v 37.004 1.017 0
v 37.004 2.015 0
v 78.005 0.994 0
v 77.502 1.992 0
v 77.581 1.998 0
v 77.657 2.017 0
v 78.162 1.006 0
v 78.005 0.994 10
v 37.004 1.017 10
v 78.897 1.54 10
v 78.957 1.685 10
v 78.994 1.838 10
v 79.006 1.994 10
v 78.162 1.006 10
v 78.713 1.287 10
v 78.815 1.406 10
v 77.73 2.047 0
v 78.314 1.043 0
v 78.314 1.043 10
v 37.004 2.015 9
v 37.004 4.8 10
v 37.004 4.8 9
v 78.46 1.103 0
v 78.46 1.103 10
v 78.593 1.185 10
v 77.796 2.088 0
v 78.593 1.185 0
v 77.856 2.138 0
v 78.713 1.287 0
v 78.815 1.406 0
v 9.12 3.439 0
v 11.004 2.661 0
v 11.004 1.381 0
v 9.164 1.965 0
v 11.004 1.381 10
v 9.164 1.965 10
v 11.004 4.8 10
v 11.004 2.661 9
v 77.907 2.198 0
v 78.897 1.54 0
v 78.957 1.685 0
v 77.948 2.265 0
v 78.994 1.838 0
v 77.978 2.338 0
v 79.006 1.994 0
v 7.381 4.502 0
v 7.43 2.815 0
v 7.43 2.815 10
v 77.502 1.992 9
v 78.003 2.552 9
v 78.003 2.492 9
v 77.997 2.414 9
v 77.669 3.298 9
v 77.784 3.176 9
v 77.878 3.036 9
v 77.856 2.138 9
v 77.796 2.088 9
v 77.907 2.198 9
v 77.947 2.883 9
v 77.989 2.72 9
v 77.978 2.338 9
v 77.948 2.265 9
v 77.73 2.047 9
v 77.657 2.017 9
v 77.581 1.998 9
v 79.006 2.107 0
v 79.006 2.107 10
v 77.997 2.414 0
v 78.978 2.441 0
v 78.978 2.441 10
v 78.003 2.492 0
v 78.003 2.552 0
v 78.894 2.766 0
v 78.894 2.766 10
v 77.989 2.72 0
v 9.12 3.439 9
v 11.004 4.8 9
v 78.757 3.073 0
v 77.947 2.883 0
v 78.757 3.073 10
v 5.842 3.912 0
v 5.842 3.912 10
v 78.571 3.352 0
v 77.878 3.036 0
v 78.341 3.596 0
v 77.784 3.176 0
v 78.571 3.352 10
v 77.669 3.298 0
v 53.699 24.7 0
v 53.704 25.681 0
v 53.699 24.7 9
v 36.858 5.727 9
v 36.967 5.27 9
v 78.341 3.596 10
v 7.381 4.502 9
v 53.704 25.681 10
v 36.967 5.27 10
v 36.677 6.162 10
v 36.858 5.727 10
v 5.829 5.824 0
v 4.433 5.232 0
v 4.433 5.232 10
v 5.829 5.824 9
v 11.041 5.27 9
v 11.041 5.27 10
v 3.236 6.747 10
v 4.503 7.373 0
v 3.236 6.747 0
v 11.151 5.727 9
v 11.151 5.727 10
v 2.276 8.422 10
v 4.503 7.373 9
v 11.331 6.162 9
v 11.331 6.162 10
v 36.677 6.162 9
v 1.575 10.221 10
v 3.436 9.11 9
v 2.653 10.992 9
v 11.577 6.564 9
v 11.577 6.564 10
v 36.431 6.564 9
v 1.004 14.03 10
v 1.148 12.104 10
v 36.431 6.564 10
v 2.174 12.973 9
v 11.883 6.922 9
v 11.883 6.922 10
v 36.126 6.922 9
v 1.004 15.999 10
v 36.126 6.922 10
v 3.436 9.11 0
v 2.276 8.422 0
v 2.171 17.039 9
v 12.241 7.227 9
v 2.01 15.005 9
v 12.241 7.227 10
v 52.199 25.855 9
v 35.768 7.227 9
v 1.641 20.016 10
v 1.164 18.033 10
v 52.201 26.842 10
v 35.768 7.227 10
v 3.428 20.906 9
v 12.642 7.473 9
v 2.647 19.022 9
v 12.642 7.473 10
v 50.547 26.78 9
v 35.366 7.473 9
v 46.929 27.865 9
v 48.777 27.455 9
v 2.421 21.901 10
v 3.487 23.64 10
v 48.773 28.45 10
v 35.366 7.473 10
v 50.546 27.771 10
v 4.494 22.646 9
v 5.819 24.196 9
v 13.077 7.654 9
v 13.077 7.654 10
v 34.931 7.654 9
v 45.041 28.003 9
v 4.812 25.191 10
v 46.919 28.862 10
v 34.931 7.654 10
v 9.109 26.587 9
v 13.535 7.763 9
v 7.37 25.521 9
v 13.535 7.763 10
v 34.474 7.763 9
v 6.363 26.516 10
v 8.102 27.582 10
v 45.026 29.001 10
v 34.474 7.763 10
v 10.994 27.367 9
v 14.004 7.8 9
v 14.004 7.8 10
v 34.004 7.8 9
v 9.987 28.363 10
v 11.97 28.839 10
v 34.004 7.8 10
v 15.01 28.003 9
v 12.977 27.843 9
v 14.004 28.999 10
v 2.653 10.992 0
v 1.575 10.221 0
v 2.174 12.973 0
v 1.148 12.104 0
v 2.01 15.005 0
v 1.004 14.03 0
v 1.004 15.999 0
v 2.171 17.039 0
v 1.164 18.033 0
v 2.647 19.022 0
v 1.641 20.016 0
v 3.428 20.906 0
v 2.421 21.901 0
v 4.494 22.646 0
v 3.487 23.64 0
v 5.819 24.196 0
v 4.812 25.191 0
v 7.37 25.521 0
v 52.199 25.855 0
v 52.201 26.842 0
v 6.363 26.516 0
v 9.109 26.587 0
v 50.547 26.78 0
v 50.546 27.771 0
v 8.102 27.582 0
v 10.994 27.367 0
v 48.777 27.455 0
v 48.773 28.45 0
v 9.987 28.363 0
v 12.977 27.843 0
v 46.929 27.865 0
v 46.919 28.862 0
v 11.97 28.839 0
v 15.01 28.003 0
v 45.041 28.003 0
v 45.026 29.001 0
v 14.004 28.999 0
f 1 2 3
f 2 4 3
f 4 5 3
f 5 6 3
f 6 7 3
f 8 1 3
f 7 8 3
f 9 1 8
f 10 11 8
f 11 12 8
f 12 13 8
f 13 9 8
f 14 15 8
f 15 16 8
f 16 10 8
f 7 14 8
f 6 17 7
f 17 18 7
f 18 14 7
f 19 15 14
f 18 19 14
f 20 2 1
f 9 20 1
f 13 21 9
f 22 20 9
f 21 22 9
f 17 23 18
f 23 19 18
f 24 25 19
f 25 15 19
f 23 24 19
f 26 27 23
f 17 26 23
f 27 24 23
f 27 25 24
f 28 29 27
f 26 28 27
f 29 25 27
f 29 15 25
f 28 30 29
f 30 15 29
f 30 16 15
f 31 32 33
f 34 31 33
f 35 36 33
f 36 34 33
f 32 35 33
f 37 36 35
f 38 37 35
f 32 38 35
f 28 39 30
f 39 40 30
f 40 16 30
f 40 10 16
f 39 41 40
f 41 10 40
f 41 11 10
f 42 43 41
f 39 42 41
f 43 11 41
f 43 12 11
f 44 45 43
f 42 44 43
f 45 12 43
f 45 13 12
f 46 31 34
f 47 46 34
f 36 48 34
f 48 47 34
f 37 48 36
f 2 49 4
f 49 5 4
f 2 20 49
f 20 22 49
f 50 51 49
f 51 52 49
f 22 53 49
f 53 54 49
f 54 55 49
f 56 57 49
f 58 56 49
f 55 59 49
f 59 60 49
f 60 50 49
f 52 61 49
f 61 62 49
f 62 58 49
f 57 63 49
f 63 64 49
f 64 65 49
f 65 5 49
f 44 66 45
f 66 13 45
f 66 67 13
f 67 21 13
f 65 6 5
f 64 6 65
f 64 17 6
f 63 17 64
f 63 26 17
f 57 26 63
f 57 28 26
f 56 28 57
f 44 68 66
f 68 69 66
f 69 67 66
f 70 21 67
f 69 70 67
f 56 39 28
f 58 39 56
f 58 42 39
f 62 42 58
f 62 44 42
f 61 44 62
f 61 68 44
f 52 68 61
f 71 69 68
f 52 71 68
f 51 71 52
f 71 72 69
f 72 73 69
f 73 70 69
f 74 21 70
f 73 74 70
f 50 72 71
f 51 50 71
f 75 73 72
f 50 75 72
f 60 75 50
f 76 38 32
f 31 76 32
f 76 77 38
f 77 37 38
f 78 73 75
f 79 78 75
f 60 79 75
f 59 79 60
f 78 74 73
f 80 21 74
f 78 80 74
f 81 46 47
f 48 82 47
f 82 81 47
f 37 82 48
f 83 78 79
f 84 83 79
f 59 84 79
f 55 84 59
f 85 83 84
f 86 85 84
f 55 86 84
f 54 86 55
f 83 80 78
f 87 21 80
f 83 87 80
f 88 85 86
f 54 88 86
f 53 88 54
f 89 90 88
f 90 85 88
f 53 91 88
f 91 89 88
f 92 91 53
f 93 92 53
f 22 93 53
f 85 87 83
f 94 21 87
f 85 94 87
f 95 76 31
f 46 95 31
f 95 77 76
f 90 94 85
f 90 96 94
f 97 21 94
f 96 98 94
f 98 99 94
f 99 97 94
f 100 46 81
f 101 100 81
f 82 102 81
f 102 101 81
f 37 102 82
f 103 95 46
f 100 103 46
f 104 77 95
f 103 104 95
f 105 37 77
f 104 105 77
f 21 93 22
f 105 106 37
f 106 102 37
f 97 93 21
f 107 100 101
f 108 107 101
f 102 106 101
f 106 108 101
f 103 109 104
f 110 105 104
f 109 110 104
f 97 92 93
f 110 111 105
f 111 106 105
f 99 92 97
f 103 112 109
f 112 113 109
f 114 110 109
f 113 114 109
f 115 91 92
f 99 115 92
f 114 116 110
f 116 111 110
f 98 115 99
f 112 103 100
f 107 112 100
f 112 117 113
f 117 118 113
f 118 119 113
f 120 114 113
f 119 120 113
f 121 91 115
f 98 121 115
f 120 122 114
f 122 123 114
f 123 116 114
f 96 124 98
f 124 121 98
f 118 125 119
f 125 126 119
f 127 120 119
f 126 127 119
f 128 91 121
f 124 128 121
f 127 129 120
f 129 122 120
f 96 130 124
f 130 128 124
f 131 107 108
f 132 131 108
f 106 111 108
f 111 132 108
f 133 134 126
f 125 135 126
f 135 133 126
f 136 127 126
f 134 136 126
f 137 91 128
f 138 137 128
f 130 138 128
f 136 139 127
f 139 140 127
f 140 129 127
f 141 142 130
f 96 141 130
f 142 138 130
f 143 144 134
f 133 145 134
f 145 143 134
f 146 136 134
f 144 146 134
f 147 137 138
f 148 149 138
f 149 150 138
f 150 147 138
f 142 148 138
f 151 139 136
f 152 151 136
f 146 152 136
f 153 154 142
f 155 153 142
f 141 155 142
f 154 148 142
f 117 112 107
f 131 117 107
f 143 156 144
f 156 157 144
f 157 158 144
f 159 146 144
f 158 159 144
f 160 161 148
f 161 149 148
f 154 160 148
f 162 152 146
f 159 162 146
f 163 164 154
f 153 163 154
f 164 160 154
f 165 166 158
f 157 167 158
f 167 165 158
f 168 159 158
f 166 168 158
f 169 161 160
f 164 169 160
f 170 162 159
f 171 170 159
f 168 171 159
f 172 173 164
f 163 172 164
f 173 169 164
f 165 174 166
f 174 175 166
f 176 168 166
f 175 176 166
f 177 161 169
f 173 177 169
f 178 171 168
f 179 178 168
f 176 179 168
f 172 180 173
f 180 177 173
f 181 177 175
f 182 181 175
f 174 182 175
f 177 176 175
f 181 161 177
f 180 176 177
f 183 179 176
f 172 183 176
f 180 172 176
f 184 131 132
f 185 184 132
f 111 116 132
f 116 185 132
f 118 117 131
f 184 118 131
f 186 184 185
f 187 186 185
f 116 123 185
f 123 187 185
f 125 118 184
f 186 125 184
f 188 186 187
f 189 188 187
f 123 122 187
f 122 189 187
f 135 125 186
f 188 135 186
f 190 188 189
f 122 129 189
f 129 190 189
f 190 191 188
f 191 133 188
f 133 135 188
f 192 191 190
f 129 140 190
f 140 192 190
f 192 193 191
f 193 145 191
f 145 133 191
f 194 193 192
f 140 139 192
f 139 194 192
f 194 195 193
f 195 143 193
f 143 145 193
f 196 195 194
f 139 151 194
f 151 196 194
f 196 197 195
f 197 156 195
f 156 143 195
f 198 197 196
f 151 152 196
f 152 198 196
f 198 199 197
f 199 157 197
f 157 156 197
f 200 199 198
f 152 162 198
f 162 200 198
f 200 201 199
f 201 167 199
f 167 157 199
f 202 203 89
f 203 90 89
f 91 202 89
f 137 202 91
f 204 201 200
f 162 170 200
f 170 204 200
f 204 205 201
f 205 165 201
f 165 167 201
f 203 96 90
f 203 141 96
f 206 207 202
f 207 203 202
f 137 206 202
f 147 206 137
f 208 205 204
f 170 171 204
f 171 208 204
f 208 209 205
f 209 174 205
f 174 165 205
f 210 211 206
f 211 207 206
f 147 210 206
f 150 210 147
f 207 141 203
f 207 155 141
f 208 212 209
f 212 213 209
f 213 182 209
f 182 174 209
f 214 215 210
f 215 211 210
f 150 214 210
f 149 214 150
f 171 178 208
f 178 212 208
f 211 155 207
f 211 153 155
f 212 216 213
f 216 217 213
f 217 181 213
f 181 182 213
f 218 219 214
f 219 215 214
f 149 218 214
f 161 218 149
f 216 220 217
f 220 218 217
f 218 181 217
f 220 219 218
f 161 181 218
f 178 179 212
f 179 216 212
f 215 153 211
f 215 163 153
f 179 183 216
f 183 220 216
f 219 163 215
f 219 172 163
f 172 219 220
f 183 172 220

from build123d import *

# Parameters (mm, degrees)
SKETCH1_W               = 80
SKETCH1_H               = 30
BOSS_EXTRUDE1_DEPTH     = 10
CUT_EXTRUDE2_DEPTH      = 87.02325267
CUT_EXTRUDE2_DEPTH_BACK = 10
SKETCH9_OUTSIDE_W       = 99.204
SKETCH9_OUTSIDE_H       = 49.204
CUT_EXTRUDE3_DEPTH      = 10
CUT_EXTRUDE5_DEPTH      = 9
FILLET13_R              = 13
FILLET14_R              = 13
FILLET15_R              = 13
FILLET17_R              = 13
FILLET18_R              = 13
FILLET19_R              = 13
FILLET20_R              = 2
FILLET21_R              = 1
FILLET22_R              = 0.5
FILLET23_R              = 1
SKETCH15_W              = 26
SKETCH15_H              = 7
CUT_EXTRUDE6_DEPTH      = 15
FILLET24_R              = 3
FILLET25_R              = 3


with BuildPart() as part:
    # Sketch1 → Boss-Extrude1 (new body)
    with BuildSketch(Plane.XY):
        with Locations((40, 15)):
            Rectangle(SKETCH1_W, SKETCH1_H)
    extrude(amount=BOSS_EXTRUDE1_DEPTH)

    # Sketch2 → Cut-Extrude2 (cut, two sides: drawn at the far end of the back side and taken through both)
    with BuildSketch(Plane.XY.offset(10).offset(-CUT_EXTRUDE2_DEPTH_BACK)):
        Polygon((50, 30), (80, 3), (80, 30), align=None)
    extrude(amount=CUT_EXTRUDE2_DEPTH + CUT_EXTRUDE2_DEPTH_BACK, mode=Mode.SUBTRACT)

    # Sketch9 outside → Cut-Extrude3 (cut)
    with BuildSketch(Plane.XY.offset(10)):
        with Locations((40, 15)):
            Rectangle(SKETCH9_OUTSIDE_W, SKETCH9_OUTSIDE_H)
        Polygon((1.004393743, 1.037027121), (79.0058654, 0.993658775), (79.0058654, 3), (50, 29.001260854), (1.004393743, 28.998403262), align=None, mode=Mode.SUBTRACT)
    extrude(amount=-CUT_EXTRUDE3_DEPTH, mode=Mode.SUBTRACT)

    # Sketch14 → Cut-Extrude5 (cut)
    with BuildSketch(Plane(origin=(0, 0, 0), x_dir=(-1, 0, 0), z_dir=(0, 0, -1))):
        Polygon((-50, 28.003177056), (-2.012705642, 28.003177056), (-2.00811371, 2.035465522), (-78.002698254, 1.991852338), (-78.002698254, 3), align=None)
    extrude(amount=-CUT_EXTRUDE5_DEPTH, mode=Mode.SUBTRACT)

    # Fillet13
    fillet13_edges = [part.edges().sort_by_distance(p)[0] for p in [
        (2.012705642, 28.003177056, 4.5),
    ]]
    fillet(fillet13_edges, radius=FILLET13_R)

    # Fillet14
    # the kernel refuses this fillet: 13 mm, written as the material it adds along each edge
    with BuildSketch(Plane(origin=(2.00811371, 2.035465522, 0), x_dir=(0.0001768323716472033, 0.999999984365156, 0), z_dir=(0, 0, 1))) as fillet14_piece_1:
        with BuildLine():
            CenterArc((FILLET14_R * 0.999603012675, -FILLET14_R), FILLET14_R, 90, 89.977249786)
            Line((-FILLET14_R * 0.000396908494235, -FILLET14_R * 0.999602933876), (0, 0))
            Line((0, 0), (FILLET14_R * 0.999603012675, 0))
        make_face()
    extrude(amount=9)

    # Fillet15
    fillet15_edges = [part.edges().sort_by_distance(p)[0] for p in [
        (50, 28.003177056, 4.5),
    ]]
    fillet(fillet15_edges, radius=FILLET15_R)

    # Fillet17
    fillet17_edges = [part.edges().sort_by_distance(p)[0] for p in [
        (1.004393743, 28.998403262, 5),
    ]]
    fillet(fillet17_edges, radius=FILLET17_R)

    # Fillet18
    fillet18_edges = [part.edges().sort_by_distance(p)[0] for p in [
        (1.004393743, 1.037027121, 5),
    ]]
    fillet(fillet18_edges, radius=FILLET18_R)

    # Fillet19
    fillet19_edges = [part.edges().sort_by_distance(p)[0] for p in [
        (50, 29.001260854, 5),
    ]]
    fillet(fillet19_edges, radius=FILLET19_R)

    # Fillet20
    fillet20_edges = [part.edges().sort_by_distance(p)[0] for p in [
        (79.0058654, 3, 5),
    ]]
    fillet(fillet20_edges, radius=FILLET20_R)

    # Fillet21
    fillet21_edges = [part.edges().sort_by_distance(p)[0] for p in [
        (79.0058654, 0.993658775, 5),
    ]]
    fillet(fillet21_edges, radius=FILLET21_R)

    # Fillet22
    fillet22_edges = [part.edges().sort_by_distance(p)[0] for p in [
        (78.002698254, 1.991852338, 4.5),
    ]]
    fillet(fillet22_edges, radius=FILLET22_R)

    # Fillet23
    fillet23_edges = [part.edges().sort_by_distance(p)[0] for p in [
        (78.002698254, 3, 4.5),
    ]]
    fillet(fillet23_edges, radius=FILLET23_R)

    # Sketch15 → Cut-Extrude6 (cut)
    with BuildSketch(Plane.XY.offset(10)):
        with Locations((24.004393743, 4.300352014)):
            Rectangle(SKETCH15_W, SKETCH15_H)
    extrude(amount=-CUT_EXTRUDE6_DEPTH, mode=Mode.SUBTRACT)

    # Fillet24
    fillet24_edges = [part.edges().sort_by_distance(p)[0] for p in [
        (11.004393743, 7.800352014, 9.5),
    ]]
    fillet(fillet24_edges, radius=FILLET24_R)

    # Fillet25
    fillet25_edges = [part.edges().sort_by_distance(p)[0] for p in [
        (37.004393743, 7.800352014, 9.5),
    ]]
    fillet(fillet25_edges, radius=FILLET25_R)


solid = part.part
